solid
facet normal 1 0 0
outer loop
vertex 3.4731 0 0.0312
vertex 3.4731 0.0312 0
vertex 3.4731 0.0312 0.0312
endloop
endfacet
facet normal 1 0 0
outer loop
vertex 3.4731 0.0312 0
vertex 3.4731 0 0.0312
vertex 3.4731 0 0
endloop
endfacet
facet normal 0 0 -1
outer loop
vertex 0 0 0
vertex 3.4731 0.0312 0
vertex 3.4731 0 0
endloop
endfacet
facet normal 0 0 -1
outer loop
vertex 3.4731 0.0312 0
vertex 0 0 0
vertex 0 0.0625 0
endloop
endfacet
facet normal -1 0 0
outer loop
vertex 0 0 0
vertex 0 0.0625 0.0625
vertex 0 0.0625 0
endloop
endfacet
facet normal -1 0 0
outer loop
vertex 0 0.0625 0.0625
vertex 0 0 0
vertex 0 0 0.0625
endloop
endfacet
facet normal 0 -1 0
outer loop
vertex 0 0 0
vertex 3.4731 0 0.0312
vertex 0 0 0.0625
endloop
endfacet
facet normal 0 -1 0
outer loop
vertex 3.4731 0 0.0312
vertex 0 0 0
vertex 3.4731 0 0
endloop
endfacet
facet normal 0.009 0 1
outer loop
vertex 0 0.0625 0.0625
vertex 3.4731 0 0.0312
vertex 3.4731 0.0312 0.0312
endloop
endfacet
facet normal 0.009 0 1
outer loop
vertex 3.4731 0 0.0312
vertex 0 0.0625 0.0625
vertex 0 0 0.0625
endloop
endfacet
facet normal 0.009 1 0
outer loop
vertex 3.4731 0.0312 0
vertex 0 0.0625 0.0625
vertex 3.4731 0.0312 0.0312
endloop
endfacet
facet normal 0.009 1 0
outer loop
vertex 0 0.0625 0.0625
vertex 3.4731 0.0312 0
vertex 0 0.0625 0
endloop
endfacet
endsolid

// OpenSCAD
// file: ../../../constraints.scad
//####################################
// Math-Magik LPP - Design Constraints
// (c) 2021 by Roie R. Black
//====================================

// AMA Rules for event 208
//------------------------------------

max_overall_length = 20;
max_projected_wing_span = 18;
max_bearing_to_rear_hook = 10;
max_wing_chord = 5;
max_stab_span = 12;
max_stab_chord = 4;
max_prop_diameter = 12;
// file: MMlib/double_taper_spar.scad
//######################################################################
// double_taper_spar.scad - creates a spar tapered on two sides
// (c) 2021 - Roie R. Black
// docs: https://rblack.github.io/math-magik/magik/double_taper_spar.html

module double_taper_spar(l=5, y1=1, y2=0.5, z1=1, z2=0.5, debug=false) {
  // calc taper angles
  yang = atan2(z1-z2,l);
  zang = atan2(y1-y2,l);


  difference() {
    // z taper
    difference() {
      cube([l,y1,z1]);
      translate([0,-y1/2, z1])
        rotate([0,yang,0])
          if (debug) {
            #cube([l+1, 2*y1, z1]);
          } else {
            cube([l+1, 2*y1, z1]);
          }
    // y taper
    translate([0,y1, -z1/2])
      rotate([0,0,-zang])
        if (debug) {
          #cube([l+1, y1, 2*z1]);
        } else {
          cube([l+1, y1, 2*z1]);
        }
    }
  }
}

double_taper_spar();
// file: ../../wing_data.scad
//#####################################
// wing.data
// (c) 2021 by Roie R. Black
//=====================================
include <../constraints.scad>

// center section dimensions
center_span = 12;
spar_size = 1/16;
rib_chord = max_wing_chord - 2 * spar_size;
rib_camber = 4;
num_center_ribs = 5;

// tip section dimensions
tip_dihedral = 1.75;
tip_radius = 2;
a = tip_dihedral;
b = (max_projected_wing_span - center_span)/2;
tip_span = sqrt(a*a + b*b);
tip_dihedral_angle = atan2(a,b);
tip_le_span = tip_span - tip_radius;
tip_rib_chord = max_wing_chord - tip_radius - spar_size;

echo(tip_dihedral_angle);
// main file
//#####################################
// te.scad = wing center section
// (c) 2021 by Roie R. Black
//=====================================
include <../../wing_data.scad>
use <MMlib/double_taper_spar.scad>

s1 = spar_size;
s2 = spar_size/2;


module trailing_edge() {
		double_taper_spar(tip_span,s1,s2,s1,s2);
}

//====================================
// display this shape
trailing_edge();
